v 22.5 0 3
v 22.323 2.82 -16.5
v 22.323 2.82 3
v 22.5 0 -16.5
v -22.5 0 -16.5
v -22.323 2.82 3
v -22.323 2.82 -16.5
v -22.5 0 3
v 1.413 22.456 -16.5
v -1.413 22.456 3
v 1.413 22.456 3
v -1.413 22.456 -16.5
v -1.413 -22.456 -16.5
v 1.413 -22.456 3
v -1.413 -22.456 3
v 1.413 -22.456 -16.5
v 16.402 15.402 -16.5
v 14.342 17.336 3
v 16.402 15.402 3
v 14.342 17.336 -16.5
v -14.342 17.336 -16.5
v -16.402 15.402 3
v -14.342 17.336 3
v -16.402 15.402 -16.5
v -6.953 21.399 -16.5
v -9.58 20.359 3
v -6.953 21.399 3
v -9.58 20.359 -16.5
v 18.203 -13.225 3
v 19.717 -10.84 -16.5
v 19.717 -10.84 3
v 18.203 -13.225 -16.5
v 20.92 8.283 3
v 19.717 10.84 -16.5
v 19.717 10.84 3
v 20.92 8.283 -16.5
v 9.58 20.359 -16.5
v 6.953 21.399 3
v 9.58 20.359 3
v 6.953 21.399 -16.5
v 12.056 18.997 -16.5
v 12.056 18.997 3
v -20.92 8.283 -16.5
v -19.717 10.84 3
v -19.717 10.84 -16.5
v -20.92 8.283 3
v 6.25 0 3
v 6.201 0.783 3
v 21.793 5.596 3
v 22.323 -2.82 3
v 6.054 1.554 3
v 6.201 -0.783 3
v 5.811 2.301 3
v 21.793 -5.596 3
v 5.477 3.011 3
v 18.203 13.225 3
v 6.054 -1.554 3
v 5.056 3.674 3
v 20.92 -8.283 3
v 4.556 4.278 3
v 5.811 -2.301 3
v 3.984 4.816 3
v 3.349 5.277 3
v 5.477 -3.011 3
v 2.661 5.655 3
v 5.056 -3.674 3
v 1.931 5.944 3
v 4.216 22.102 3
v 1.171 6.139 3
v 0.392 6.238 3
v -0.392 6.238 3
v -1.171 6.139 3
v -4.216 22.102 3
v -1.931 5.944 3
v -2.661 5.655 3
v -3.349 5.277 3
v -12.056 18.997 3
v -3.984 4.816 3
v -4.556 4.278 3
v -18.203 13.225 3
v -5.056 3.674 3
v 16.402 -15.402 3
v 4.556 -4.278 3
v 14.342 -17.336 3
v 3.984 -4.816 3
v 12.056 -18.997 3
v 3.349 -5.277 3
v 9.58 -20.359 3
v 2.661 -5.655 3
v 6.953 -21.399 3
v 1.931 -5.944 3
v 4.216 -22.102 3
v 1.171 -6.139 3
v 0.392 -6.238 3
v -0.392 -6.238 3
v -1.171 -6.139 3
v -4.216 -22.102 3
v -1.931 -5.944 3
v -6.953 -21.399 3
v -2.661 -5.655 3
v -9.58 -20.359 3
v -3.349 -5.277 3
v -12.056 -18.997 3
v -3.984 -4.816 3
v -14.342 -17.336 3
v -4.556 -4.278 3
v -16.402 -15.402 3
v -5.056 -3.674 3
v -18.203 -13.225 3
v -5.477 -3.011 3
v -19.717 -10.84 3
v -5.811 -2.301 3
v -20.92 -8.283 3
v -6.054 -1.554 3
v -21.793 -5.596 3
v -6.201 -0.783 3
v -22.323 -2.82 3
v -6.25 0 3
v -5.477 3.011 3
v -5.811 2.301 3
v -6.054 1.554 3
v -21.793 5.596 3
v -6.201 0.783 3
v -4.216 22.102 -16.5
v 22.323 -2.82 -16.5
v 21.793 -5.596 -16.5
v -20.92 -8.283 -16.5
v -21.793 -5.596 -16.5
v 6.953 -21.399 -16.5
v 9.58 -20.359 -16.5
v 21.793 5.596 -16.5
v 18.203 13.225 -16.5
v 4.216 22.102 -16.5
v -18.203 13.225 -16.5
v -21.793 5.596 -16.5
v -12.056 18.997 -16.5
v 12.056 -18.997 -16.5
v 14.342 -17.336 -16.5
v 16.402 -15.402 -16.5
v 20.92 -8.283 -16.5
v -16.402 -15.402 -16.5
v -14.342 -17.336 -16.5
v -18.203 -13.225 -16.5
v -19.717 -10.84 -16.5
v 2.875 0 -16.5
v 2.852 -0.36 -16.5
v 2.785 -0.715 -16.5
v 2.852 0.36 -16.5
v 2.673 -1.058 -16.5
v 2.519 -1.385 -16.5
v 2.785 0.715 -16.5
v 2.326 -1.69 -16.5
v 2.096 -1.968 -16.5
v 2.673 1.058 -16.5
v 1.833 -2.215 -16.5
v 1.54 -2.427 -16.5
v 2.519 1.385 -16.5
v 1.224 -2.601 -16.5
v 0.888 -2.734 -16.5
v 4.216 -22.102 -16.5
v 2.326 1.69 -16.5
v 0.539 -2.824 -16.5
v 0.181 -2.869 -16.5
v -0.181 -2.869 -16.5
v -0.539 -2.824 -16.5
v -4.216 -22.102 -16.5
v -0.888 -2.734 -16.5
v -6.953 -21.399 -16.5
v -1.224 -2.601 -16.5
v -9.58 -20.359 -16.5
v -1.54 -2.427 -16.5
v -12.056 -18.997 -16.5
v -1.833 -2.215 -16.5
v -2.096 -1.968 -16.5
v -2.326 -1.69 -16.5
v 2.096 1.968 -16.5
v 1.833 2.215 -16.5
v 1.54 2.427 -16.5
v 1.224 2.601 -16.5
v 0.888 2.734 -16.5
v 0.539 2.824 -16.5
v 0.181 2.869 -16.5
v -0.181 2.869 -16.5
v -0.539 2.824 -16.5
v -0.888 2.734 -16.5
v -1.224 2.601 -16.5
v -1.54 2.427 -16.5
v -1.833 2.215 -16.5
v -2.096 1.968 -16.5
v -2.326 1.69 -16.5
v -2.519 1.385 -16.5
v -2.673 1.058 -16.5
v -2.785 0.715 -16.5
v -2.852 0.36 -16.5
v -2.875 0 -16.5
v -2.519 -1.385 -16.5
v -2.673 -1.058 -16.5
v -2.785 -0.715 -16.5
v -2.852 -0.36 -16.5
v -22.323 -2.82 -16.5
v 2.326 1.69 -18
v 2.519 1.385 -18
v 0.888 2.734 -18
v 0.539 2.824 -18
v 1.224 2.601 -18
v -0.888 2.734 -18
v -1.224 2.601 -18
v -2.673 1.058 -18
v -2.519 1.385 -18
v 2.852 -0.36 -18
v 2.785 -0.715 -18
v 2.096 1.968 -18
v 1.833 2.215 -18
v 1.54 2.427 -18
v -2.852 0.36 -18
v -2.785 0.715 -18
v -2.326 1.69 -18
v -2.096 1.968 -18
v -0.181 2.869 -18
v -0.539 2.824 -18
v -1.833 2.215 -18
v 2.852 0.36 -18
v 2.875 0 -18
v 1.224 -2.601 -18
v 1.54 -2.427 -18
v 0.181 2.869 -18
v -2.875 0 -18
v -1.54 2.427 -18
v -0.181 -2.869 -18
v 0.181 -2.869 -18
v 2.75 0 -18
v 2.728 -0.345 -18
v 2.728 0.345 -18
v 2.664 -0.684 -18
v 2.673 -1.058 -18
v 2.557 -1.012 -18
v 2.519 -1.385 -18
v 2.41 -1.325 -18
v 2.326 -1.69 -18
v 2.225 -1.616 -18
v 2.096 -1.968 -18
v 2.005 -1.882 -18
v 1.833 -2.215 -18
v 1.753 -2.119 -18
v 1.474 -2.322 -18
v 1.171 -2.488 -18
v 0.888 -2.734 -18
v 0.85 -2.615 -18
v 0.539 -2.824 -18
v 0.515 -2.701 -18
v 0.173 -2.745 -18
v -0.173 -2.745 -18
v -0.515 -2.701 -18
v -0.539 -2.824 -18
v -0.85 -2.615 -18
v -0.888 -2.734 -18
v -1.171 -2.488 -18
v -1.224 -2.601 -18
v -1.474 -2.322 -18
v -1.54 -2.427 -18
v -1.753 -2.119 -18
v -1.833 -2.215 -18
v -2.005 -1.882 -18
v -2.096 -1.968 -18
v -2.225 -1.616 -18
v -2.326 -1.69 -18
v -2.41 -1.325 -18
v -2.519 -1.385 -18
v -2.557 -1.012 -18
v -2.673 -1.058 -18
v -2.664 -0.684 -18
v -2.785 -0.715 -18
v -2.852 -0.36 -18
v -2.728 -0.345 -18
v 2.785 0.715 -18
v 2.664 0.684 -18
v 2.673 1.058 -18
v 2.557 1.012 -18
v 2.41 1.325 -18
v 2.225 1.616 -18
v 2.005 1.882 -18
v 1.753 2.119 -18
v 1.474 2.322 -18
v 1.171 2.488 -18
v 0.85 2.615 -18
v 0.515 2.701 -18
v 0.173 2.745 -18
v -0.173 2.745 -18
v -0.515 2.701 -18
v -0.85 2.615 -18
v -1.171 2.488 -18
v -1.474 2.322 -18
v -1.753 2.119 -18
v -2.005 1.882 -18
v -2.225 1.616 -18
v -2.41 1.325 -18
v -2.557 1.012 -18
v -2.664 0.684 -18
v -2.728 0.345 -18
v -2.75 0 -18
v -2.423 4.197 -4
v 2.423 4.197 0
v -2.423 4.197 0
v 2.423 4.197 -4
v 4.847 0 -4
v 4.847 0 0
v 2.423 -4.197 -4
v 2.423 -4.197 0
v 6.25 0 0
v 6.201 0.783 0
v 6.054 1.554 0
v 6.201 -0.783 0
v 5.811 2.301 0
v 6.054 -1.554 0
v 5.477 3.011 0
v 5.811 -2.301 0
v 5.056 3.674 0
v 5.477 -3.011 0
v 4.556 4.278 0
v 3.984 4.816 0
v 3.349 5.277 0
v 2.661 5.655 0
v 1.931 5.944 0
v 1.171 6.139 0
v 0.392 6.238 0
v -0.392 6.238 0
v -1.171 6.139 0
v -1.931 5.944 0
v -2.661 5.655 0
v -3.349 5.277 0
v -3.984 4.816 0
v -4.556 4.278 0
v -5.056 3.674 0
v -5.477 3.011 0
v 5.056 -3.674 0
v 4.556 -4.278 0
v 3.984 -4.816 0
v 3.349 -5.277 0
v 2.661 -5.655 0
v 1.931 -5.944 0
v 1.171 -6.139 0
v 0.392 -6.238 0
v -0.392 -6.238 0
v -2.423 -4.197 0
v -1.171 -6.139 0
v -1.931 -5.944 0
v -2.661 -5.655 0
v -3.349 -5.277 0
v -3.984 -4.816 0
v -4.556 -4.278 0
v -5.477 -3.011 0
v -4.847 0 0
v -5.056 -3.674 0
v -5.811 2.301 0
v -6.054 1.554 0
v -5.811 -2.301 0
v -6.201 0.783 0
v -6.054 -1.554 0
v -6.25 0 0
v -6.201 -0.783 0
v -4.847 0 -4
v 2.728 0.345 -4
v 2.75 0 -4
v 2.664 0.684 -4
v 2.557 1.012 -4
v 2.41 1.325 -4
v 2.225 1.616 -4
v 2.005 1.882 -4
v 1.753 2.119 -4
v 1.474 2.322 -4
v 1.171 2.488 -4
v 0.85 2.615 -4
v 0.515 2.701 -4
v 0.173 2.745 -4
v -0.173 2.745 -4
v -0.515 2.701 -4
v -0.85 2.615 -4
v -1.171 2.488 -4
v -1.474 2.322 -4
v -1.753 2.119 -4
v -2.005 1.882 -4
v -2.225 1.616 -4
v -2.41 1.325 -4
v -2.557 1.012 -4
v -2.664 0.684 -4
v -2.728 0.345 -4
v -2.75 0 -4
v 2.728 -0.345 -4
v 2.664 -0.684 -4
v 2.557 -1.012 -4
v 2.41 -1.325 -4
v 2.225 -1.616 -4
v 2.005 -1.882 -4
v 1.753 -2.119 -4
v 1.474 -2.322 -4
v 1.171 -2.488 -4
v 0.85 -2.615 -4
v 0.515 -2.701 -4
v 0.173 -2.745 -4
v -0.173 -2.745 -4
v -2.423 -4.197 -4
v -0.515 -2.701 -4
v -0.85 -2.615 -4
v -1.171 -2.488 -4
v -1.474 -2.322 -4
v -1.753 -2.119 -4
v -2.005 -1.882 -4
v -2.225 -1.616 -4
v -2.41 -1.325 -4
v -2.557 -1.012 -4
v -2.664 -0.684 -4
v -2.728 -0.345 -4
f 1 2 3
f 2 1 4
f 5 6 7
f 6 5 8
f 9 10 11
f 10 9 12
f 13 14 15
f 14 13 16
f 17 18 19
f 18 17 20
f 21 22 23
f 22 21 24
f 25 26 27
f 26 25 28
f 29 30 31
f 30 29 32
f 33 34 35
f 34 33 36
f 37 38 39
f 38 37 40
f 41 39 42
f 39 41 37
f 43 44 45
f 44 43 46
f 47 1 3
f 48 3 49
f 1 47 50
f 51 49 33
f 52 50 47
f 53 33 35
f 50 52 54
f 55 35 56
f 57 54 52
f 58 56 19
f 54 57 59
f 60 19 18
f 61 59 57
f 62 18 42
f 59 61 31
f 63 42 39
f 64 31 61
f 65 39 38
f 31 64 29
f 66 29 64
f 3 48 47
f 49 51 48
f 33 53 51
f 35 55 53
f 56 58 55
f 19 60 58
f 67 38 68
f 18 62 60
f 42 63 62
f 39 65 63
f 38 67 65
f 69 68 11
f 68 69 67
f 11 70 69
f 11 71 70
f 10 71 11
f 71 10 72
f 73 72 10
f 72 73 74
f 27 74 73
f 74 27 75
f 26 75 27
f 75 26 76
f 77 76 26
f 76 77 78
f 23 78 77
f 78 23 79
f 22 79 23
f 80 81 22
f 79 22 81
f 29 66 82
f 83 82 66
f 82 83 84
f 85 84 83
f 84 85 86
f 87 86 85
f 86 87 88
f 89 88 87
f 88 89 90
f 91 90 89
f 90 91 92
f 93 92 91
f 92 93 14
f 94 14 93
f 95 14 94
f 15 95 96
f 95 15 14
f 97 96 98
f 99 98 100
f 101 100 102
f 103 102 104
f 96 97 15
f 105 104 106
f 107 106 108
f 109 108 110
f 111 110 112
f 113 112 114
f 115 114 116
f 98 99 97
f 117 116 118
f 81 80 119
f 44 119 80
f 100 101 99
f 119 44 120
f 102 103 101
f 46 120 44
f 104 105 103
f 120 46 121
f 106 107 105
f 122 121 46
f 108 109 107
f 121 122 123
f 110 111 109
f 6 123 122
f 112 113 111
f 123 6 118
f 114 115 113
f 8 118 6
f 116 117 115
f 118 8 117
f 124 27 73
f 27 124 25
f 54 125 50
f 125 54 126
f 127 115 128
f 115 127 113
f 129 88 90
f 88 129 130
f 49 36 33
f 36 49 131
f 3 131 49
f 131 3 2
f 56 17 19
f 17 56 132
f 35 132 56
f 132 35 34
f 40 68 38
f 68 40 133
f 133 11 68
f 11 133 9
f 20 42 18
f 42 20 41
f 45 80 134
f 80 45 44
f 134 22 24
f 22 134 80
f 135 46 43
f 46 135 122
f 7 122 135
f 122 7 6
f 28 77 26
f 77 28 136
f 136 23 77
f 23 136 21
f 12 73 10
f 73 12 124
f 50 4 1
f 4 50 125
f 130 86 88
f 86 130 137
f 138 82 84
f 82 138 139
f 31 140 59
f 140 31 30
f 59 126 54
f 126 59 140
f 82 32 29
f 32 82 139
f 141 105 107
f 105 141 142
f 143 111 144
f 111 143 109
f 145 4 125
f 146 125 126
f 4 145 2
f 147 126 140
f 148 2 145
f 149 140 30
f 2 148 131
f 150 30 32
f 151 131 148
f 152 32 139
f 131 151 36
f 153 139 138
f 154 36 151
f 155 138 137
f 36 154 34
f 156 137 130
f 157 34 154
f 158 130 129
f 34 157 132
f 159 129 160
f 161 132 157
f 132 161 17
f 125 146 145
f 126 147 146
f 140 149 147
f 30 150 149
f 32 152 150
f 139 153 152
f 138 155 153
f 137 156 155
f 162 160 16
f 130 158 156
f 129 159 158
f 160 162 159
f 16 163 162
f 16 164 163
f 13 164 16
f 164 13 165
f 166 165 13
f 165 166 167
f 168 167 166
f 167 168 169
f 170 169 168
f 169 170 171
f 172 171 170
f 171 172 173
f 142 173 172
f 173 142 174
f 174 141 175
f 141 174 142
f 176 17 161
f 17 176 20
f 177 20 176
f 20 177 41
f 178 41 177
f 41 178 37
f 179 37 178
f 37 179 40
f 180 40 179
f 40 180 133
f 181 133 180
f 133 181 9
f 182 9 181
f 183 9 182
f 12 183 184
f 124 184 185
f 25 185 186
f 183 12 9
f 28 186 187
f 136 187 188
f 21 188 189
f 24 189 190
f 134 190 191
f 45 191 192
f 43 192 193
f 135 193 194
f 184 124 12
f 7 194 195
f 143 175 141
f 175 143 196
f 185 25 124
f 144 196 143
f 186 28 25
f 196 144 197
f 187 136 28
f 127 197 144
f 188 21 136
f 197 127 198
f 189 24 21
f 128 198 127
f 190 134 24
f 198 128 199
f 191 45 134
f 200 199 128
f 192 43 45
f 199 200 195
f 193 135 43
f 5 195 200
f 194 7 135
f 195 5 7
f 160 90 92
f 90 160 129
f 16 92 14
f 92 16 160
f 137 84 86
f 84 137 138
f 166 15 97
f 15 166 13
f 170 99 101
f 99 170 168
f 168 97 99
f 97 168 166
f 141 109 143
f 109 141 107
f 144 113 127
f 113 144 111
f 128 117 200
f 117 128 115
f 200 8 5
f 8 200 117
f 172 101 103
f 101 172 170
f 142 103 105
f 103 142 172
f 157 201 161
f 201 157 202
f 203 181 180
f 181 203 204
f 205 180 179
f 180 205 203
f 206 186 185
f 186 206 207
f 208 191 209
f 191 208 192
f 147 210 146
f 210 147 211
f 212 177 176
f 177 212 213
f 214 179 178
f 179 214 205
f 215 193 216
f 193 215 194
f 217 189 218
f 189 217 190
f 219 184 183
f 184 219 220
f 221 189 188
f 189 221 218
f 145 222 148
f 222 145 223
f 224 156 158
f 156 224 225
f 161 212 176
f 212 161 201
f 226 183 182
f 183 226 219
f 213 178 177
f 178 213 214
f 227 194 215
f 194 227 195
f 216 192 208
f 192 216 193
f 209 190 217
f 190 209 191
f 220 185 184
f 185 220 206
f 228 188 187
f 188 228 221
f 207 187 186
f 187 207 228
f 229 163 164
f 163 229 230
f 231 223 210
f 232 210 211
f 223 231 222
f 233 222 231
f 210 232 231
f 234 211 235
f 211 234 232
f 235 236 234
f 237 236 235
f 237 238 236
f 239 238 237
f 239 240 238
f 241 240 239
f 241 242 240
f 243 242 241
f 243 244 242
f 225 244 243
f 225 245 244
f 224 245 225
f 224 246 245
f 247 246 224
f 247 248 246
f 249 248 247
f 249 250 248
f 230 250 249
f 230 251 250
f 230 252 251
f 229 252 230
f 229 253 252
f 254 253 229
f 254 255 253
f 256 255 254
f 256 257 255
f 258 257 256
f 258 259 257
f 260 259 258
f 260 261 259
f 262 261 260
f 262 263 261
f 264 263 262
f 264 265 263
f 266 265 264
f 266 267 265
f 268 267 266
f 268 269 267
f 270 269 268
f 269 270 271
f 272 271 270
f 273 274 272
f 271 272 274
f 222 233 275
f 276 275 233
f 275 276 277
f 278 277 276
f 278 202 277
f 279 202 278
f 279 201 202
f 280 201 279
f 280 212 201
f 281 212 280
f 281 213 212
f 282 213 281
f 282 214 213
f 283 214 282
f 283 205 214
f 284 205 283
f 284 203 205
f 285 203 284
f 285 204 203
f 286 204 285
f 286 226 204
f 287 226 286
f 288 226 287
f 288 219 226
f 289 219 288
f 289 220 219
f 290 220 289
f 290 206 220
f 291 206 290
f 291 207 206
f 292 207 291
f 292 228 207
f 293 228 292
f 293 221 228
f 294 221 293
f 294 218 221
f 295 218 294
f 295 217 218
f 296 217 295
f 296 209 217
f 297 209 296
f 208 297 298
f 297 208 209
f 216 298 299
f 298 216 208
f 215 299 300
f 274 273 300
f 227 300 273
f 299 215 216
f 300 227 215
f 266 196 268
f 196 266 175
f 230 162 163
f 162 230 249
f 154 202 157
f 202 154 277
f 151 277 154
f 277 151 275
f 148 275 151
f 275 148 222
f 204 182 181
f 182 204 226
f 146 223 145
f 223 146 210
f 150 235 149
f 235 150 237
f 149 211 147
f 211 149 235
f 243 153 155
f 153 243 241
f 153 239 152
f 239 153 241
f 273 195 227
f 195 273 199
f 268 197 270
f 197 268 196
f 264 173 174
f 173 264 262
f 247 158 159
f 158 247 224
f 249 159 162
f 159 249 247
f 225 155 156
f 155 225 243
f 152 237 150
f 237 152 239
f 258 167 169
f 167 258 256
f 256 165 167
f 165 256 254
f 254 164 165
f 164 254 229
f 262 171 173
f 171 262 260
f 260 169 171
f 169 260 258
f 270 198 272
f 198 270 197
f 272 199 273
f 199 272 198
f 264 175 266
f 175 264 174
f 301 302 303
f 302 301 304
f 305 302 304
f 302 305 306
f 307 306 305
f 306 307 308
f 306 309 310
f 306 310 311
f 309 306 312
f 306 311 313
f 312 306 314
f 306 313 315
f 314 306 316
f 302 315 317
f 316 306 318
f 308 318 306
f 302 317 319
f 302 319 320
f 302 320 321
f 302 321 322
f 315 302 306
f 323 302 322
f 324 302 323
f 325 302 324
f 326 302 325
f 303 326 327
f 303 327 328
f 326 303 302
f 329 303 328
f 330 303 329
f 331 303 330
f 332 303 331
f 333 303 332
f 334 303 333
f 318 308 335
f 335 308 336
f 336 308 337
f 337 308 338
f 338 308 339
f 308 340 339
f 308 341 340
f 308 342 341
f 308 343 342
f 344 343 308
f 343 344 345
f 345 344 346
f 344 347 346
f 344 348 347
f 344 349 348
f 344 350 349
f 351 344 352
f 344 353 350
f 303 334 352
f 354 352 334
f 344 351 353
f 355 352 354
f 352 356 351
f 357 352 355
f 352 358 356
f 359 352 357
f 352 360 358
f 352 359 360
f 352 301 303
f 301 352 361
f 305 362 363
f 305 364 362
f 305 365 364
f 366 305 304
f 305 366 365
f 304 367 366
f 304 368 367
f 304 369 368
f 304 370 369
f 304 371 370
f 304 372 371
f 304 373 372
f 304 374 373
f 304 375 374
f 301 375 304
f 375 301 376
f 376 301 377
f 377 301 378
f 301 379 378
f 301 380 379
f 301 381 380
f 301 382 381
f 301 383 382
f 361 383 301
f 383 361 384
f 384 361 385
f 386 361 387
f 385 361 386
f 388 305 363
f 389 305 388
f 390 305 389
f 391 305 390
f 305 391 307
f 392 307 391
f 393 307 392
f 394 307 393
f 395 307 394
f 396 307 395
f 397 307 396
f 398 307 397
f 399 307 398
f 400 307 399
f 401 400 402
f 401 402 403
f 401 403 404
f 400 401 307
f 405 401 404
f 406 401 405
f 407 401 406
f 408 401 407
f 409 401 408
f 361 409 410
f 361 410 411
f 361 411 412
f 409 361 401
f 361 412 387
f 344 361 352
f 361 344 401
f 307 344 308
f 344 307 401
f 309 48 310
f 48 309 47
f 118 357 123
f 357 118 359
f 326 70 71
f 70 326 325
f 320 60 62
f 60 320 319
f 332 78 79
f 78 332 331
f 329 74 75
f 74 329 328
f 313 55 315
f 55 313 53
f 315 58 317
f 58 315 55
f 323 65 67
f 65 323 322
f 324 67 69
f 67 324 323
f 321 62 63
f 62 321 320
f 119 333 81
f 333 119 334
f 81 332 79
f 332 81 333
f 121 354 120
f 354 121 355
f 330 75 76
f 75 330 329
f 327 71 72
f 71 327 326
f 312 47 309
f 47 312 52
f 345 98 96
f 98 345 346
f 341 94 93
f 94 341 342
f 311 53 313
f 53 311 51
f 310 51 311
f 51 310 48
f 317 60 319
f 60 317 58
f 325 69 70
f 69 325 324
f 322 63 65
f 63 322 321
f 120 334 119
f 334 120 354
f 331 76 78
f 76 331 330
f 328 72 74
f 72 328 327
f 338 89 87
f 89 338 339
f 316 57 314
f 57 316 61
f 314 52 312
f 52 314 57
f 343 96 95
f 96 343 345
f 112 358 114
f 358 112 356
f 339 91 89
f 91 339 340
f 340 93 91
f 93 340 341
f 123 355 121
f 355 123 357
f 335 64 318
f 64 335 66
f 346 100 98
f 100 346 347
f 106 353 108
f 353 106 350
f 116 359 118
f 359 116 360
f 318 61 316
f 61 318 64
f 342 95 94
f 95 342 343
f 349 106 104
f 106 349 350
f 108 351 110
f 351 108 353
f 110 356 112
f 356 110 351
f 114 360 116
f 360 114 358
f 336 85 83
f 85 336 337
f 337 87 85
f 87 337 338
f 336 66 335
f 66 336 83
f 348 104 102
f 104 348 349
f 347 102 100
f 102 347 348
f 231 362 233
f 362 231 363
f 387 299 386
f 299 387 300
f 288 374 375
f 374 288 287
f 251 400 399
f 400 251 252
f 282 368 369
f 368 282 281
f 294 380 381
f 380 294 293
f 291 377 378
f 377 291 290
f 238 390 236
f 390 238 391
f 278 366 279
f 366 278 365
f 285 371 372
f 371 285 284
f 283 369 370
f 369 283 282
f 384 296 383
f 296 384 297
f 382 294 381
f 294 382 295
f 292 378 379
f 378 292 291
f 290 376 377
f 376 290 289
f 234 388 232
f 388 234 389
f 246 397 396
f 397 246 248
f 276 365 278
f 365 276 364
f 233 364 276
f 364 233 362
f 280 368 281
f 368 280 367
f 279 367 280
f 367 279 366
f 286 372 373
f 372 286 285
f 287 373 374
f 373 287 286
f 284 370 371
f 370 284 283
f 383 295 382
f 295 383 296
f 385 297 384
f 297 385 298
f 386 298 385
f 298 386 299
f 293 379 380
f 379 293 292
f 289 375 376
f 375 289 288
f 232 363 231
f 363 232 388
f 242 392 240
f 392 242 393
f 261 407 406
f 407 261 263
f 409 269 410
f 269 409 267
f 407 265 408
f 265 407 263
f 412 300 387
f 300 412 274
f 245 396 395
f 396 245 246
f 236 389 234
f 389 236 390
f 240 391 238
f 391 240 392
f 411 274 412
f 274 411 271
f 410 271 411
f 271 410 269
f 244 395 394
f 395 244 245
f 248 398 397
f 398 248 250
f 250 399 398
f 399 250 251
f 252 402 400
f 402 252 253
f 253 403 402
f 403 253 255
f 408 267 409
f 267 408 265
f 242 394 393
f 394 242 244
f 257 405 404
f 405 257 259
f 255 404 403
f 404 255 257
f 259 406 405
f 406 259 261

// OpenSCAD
$fn = 50;


difference() {
	union() {
		translate(v = [0, 0, -16.5000000000]) {
			cylinder(h = 19.5000000000, r = 22.5000000000);
		}
		#translate(v = [0, 0, -18.0000000000]) {
			cylinder(h = 18, r = 2.8750000000);
		}
	}
	union() {
		translate(v = [0, 0, 0]) {
			rotate(a = [0, 0, 0]) {
				difference() {
					union() {
						translate(v = [0, 0, -4]) {
							linear_extrude(height = 4) {
								polygon(points = [[4.8468000000, 0.0000000000], [2.4234000000, 4.1974519271], [-2.4234000000, 4.1974519271], [-4.8468000000, 0.0000000000], [-2.4234000000, -4.1974519271], [2.4234000000, -4.1974519271]]);
							}
						}
					}
					union();
				}
			}
		}
		#cylinder(h = 3, r = 6.2500000000);
		#translate(v = [0, 0, -100.0000000000]) {
			cylinder(h = 200, r = 2.7500000000);
		}
	}
}
